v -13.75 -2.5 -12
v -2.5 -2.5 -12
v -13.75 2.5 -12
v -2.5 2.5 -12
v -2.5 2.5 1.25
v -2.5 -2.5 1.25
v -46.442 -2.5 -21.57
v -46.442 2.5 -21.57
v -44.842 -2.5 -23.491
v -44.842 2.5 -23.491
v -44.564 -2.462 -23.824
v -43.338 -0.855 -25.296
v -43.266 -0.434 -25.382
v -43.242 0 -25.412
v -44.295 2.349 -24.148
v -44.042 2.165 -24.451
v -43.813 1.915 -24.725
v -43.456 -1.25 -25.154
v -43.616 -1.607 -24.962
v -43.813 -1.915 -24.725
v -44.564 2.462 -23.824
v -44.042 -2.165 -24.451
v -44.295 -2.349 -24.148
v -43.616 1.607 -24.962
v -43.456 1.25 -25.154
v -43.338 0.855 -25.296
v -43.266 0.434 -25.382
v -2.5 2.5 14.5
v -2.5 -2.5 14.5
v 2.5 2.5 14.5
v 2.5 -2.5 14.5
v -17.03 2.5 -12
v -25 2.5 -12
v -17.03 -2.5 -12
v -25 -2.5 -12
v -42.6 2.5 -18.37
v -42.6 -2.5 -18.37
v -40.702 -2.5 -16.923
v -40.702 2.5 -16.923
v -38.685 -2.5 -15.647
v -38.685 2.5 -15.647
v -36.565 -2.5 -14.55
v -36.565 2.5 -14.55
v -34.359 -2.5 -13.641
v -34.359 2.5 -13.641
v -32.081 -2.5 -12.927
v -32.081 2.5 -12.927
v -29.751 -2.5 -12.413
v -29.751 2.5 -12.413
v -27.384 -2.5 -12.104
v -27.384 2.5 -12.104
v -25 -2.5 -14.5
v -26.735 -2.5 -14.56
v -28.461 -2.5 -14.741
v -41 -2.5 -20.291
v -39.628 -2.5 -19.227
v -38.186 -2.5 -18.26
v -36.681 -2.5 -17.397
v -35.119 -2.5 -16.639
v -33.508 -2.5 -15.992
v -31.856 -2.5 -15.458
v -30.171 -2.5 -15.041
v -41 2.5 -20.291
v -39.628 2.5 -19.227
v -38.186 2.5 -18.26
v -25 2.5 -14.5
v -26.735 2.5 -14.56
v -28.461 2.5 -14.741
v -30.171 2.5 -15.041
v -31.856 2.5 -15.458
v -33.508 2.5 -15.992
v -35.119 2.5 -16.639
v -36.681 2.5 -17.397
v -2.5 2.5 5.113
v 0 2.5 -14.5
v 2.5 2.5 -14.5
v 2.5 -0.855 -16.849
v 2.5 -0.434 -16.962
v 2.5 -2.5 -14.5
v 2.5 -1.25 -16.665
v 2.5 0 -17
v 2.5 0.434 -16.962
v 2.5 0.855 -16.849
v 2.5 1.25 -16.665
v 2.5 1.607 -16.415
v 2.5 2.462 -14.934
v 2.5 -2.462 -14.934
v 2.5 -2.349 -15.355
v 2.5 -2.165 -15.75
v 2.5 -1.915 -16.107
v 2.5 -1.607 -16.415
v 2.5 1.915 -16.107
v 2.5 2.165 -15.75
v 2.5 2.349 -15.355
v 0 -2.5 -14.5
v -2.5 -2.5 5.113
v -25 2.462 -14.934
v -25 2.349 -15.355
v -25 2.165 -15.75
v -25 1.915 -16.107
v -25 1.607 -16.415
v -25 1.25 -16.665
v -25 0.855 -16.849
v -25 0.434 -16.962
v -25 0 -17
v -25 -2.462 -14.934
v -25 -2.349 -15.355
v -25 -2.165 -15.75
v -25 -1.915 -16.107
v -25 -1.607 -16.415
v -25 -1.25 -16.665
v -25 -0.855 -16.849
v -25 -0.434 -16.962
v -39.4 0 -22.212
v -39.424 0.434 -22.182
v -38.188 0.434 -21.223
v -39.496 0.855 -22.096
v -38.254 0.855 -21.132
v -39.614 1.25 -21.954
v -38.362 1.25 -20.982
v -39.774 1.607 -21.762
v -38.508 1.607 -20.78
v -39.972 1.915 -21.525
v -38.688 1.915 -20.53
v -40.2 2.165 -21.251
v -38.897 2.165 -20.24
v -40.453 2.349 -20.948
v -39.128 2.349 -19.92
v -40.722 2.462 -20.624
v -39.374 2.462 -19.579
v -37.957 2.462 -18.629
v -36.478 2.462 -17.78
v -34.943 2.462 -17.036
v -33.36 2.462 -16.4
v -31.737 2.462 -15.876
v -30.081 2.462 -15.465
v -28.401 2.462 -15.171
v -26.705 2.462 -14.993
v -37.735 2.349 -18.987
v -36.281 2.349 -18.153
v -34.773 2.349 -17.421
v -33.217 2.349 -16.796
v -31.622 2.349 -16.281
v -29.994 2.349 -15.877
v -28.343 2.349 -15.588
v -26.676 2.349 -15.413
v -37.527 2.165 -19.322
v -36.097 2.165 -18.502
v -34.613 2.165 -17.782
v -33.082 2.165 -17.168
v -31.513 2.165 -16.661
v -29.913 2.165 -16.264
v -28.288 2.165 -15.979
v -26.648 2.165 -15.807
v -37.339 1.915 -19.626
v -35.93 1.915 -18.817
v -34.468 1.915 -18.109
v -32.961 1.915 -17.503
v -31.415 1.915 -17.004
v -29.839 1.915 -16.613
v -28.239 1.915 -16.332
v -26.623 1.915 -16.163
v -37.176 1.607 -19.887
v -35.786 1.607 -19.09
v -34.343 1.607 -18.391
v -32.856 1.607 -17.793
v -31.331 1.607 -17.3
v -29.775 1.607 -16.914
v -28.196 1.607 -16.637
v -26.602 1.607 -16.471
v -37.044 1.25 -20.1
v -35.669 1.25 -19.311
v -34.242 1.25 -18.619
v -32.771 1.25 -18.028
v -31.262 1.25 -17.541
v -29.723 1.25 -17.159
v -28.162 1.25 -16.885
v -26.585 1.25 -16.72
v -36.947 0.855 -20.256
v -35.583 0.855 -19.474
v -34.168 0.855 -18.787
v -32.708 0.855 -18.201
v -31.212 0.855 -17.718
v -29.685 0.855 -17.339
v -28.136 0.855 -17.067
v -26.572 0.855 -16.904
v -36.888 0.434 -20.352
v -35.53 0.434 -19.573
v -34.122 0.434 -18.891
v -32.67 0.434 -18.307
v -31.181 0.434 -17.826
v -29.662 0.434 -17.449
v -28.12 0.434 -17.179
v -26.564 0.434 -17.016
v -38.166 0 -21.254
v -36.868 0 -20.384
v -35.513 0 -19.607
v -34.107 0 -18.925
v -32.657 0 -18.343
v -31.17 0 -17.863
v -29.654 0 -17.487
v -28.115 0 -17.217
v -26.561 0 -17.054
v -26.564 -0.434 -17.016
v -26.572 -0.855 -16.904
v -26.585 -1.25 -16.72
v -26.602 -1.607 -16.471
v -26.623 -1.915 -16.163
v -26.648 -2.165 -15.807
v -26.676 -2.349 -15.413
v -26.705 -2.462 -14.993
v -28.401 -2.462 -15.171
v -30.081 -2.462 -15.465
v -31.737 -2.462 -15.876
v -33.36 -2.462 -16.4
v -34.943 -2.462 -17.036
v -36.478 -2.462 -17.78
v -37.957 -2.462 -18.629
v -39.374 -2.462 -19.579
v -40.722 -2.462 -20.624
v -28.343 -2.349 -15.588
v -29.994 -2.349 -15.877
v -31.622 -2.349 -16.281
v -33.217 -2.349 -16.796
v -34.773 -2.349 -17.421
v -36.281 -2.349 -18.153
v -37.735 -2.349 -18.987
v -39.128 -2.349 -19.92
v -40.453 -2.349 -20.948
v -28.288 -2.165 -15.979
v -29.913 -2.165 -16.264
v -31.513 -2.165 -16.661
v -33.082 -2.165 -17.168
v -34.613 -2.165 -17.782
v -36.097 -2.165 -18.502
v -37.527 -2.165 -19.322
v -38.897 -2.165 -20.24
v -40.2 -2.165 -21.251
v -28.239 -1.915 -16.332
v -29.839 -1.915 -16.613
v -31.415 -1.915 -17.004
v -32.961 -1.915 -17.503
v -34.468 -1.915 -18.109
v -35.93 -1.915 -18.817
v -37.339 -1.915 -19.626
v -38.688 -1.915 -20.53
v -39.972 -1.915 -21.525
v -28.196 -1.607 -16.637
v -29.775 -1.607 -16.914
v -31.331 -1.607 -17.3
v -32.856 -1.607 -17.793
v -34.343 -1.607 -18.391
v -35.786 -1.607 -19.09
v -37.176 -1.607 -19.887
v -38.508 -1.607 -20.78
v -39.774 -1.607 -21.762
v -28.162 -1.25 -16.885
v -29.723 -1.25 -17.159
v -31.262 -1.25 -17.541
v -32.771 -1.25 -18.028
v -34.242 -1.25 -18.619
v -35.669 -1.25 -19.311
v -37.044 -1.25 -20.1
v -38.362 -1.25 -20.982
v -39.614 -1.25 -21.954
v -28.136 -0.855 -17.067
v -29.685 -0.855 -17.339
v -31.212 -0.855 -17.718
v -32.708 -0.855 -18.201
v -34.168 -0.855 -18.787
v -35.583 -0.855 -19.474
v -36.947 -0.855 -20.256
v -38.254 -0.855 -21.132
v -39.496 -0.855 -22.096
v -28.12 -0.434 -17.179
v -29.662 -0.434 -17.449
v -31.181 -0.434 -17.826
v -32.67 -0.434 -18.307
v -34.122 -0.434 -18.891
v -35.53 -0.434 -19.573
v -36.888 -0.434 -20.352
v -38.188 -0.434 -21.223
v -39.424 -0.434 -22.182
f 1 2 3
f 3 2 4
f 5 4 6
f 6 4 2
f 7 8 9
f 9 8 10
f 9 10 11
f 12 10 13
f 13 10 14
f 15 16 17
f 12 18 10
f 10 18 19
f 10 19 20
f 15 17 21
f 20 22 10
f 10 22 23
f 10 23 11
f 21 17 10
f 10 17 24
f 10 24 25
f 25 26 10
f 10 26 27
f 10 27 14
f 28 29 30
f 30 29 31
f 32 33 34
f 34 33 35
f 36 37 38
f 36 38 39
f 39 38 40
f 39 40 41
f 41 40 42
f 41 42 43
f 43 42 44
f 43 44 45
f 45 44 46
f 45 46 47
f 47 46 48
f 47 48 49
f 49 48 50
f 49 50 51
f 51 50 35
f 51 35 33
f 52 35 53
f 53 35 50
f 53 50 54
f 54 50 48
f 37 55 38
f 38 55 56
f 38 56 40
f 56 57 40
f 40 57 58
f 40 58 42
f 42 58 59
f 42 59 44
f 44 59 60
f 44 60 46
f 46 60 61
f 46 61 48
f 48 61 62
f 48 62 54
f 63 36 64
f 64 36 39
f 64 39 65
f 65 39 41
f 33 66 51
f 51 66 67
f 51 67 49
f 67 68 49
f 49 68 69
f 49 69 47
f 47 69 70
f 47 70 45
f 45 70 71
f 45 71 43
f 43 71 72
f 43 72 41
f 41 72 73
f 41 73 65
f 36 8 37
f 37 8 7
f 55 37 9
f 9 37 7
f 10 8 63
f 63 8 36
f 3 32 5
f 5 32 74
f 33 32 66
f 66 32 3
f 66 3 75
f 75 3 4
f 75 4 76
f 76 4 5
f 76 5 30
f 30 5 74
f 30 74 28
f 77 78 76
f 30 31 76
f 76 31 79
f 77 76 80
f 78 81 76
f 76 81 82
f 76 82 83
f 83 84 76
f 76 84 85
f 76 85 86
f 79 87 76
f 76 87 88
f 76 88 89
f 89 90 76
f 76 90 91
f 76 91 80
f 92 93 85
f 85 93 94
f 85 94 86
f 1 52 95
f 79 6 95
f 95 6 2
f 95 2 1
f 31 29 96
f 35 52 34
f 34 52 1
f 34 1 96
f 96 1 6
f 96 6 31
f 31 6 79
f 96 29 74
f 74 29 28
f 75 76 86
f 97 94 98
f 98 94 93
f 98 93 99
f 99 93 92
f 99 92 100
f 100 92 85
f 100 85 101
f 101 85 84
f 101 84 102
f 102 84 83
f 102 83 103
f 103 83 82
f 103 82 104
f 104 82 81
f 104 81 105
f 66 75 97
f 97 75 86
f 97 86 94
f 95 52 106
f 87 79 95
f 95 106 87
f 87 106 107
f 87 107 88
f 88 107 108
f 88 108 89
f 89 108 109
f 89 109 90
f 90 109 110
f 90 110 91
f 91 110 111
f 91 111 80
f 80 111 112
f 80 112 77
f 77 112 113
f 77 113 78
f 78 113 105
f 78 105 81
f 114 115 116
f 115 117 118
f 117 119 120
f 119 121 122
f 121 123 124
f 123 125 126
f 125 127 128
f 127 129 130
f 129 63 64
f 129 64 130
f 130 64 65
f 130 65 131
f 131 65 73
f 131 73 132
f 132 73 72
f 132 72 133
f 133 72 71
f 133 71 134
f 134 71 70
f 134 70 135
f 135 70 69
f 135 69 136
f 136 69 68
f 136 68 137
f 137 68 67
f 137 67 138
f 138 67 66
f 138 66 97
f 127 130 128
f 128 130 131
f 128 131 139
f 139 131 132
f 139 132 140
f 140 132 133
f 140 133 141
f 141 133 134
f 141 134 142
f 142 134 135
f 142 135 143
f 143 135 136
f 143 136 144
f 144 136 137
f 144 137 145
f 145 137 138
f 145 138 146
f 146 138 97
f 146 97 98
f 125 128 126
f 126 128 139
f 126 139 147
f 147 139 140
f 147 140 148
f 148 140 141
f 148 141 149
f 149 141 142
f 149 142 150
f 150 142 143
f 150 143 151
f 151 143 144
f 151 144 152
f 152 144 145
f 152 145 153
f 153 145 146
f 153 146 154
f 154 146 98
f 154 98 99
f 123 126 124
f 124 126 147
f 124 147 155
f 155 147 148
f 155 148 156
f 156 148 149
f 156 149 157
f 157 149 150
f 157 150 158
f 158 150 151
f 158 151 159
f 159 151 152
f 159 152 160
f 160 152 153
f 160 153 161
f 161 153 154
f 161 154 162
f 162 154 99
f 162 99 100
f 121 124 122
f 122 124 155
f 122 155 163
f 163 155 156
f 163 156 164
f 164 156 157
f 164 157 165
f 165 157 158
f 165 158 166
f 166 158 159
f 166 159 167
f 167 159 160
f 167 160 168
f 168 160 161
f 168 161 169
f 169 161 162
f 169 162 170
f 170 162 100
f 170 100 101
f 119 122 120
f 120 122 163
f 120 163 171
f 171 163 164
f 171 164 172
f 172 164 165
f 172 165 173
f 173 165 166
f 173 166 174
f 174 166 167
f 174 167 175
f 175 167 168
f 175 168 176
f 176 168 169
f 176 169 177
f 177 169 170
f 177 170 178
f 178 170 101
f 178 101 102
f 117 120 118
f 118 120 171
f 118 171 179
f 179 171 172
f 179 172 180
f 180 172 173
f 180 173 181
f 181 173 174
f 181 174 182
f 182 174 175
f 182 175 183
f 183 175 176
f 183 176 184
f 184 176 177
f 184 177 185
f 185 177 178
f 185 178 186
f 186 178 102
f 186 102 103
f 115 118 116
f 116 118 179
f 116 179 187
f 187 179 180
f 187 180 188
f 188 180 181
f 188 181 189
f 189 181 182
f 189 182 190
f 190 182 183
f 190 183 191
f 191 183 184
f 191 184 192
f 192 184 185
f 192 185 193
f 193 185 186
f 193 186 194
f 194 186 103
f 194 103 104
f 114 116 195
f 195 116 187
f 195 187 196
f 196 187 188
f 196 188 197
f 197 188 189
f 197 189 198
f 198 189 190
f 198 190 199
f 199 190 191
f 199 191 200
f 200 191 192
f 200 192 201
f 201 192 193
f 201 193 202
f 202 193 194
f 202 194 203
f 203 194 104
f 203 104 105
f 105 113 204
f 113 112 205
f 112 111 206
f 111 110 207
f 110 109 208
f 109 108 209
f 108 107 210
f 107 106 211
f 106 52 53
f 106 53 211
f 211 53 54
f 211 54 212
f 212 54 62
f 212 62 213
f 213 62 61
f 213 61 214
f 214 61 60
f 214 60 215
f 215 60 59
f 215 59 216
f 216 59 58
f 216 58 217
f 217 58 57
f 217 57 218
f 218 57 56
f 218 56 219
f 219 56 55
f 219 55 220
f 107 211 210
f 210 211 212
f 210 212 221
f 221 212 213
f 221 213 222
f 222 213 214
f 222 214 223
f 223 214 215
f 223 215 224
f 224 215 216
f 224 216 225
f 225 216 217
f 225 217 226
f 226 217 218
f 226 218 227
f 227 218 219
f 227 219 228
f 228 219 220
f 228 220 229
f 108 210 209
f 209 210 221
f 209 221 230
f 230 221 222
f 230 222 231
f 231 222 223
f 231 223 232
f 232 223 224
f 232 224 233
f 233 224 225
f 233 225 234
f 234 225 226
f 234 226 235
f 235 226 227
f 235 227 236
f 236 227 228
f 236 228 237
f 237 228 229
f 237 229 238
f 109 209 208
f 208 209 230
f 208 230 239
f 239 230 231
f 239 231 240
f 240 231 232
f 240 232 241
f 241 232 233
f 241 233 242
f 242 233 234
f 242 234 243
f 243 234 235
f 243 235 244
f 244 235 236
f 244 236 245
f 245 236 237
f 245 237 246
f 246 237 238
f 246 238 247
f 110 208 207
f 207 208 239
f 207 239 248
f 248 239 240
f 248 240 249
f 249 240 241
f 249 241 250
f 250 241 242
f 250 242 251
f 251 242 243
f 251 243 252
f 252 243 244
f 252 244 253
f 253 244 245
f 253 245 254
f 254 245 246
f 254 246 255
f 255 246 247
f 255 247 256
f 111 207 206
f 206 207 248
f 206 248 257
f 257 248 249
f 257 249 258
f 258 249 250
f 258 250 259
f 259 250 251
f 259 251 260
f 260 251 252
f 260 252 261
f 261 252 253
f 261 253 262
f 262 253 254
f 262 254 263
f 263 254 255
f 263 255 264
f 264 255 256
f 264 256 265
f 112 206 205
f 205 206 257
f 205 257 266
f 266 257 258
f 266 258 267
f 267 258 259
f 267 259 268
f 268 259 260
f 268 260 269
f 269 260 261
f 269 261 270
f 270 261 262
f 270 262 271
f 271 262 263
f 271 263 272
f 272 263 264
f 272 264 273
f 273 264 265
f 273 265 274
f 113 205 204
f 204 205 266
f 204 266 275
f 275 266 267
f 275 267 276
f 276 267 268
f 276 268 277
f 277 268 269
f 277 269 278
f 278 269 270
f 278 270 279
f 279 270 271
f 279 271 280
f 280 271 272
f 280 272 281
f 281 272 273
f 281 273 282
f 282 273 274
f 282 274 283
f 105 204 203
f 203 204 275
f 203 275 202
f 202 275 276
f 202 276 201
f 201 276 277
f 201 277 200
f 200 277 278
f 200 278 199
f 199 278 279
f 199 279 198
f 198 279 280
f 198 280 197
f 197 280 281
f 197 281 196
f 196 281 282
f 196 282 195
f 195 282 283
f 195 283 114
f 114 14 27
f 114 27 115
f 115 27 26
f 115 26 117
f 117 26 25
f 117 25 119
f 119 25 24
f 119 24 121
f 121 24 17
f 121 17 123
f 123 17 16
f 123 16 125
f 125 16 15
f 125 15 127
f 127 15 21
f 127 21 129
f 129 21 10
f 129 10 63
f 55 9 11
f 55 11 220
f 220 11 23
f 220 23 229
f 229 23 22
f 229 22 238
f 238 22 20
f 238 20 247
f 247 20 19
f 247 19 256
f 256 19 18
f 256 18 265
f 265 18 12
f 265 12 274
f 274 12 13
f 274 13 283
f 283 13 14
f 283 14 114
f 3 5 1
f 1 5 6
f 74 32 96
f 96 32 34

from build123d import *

# Parameters (mm, degrees)
SKETCH2_W           = 5
SKETCH2_H           = 5
FILLET1_R           = 2.5
BOSS_EXTRUDE1_DEPTH = 5


with BuildPart() as part:
    # Sweep1: sweep along a path in Sketch1
    with BuildLine(Plane(origin=(0, 0, 0), x_dir=(1, 0, 0), z_dir=(0, 1, 0))) as sweep1_path:
        Line((0, -14.5), (0, 14.5))
        Line((0, 14.5), (-25, 14.5))
        ThreePointArc((-25, 14.5), (-33.507810594, 15.992189406), (-41, 20.290627288))
        Line((-41, 20.290627288), (-44.841874542, 23.490627288))
    # Sketch2 → Sweep1 (sweep)
    with BuildSketch(Plane.XY.offset(14.5)):
        Rectangle(SKETCH2_W, SKETCH2_H)
    sweep(path=sweep1_path.line, transition=Transition.RIGHT)

    # Fillet1
    fillet1_edges = [part.edges().sort_by_distance(p)[0] for p in [
        (-41.320937271, -2.5, -23.811564559),
        (-32.657029534, -2.5, -18.342970466),
        (-41.320937271, 2.5, -23.811564559),
        (-32.657029534, 2.5, -18.342970466),
        (-11.25, -2.5, -17),
        (-11.25, 2.5, -17),
    ]]
    fillet(fillet1_edges, radius=FILLET1_R - 0.0001)  # a hair under: the kernel refuses the full size

    # Sketch3 → Boss-Extrude1 (add)
    with BuildSketch(Plane(origin=(0, 2.5, 0), x_dir=(1, 0, 0), z_dir=(0, 1, 0))):
        Polygon((-17.029574207, 12), (-2.5, -5.112609621), (-2.5, -1.25), (-13.75, 12), align=None)
    extrude(amount=-BOSS_EXTRUDE1_DEPTH)


solid = part.part
